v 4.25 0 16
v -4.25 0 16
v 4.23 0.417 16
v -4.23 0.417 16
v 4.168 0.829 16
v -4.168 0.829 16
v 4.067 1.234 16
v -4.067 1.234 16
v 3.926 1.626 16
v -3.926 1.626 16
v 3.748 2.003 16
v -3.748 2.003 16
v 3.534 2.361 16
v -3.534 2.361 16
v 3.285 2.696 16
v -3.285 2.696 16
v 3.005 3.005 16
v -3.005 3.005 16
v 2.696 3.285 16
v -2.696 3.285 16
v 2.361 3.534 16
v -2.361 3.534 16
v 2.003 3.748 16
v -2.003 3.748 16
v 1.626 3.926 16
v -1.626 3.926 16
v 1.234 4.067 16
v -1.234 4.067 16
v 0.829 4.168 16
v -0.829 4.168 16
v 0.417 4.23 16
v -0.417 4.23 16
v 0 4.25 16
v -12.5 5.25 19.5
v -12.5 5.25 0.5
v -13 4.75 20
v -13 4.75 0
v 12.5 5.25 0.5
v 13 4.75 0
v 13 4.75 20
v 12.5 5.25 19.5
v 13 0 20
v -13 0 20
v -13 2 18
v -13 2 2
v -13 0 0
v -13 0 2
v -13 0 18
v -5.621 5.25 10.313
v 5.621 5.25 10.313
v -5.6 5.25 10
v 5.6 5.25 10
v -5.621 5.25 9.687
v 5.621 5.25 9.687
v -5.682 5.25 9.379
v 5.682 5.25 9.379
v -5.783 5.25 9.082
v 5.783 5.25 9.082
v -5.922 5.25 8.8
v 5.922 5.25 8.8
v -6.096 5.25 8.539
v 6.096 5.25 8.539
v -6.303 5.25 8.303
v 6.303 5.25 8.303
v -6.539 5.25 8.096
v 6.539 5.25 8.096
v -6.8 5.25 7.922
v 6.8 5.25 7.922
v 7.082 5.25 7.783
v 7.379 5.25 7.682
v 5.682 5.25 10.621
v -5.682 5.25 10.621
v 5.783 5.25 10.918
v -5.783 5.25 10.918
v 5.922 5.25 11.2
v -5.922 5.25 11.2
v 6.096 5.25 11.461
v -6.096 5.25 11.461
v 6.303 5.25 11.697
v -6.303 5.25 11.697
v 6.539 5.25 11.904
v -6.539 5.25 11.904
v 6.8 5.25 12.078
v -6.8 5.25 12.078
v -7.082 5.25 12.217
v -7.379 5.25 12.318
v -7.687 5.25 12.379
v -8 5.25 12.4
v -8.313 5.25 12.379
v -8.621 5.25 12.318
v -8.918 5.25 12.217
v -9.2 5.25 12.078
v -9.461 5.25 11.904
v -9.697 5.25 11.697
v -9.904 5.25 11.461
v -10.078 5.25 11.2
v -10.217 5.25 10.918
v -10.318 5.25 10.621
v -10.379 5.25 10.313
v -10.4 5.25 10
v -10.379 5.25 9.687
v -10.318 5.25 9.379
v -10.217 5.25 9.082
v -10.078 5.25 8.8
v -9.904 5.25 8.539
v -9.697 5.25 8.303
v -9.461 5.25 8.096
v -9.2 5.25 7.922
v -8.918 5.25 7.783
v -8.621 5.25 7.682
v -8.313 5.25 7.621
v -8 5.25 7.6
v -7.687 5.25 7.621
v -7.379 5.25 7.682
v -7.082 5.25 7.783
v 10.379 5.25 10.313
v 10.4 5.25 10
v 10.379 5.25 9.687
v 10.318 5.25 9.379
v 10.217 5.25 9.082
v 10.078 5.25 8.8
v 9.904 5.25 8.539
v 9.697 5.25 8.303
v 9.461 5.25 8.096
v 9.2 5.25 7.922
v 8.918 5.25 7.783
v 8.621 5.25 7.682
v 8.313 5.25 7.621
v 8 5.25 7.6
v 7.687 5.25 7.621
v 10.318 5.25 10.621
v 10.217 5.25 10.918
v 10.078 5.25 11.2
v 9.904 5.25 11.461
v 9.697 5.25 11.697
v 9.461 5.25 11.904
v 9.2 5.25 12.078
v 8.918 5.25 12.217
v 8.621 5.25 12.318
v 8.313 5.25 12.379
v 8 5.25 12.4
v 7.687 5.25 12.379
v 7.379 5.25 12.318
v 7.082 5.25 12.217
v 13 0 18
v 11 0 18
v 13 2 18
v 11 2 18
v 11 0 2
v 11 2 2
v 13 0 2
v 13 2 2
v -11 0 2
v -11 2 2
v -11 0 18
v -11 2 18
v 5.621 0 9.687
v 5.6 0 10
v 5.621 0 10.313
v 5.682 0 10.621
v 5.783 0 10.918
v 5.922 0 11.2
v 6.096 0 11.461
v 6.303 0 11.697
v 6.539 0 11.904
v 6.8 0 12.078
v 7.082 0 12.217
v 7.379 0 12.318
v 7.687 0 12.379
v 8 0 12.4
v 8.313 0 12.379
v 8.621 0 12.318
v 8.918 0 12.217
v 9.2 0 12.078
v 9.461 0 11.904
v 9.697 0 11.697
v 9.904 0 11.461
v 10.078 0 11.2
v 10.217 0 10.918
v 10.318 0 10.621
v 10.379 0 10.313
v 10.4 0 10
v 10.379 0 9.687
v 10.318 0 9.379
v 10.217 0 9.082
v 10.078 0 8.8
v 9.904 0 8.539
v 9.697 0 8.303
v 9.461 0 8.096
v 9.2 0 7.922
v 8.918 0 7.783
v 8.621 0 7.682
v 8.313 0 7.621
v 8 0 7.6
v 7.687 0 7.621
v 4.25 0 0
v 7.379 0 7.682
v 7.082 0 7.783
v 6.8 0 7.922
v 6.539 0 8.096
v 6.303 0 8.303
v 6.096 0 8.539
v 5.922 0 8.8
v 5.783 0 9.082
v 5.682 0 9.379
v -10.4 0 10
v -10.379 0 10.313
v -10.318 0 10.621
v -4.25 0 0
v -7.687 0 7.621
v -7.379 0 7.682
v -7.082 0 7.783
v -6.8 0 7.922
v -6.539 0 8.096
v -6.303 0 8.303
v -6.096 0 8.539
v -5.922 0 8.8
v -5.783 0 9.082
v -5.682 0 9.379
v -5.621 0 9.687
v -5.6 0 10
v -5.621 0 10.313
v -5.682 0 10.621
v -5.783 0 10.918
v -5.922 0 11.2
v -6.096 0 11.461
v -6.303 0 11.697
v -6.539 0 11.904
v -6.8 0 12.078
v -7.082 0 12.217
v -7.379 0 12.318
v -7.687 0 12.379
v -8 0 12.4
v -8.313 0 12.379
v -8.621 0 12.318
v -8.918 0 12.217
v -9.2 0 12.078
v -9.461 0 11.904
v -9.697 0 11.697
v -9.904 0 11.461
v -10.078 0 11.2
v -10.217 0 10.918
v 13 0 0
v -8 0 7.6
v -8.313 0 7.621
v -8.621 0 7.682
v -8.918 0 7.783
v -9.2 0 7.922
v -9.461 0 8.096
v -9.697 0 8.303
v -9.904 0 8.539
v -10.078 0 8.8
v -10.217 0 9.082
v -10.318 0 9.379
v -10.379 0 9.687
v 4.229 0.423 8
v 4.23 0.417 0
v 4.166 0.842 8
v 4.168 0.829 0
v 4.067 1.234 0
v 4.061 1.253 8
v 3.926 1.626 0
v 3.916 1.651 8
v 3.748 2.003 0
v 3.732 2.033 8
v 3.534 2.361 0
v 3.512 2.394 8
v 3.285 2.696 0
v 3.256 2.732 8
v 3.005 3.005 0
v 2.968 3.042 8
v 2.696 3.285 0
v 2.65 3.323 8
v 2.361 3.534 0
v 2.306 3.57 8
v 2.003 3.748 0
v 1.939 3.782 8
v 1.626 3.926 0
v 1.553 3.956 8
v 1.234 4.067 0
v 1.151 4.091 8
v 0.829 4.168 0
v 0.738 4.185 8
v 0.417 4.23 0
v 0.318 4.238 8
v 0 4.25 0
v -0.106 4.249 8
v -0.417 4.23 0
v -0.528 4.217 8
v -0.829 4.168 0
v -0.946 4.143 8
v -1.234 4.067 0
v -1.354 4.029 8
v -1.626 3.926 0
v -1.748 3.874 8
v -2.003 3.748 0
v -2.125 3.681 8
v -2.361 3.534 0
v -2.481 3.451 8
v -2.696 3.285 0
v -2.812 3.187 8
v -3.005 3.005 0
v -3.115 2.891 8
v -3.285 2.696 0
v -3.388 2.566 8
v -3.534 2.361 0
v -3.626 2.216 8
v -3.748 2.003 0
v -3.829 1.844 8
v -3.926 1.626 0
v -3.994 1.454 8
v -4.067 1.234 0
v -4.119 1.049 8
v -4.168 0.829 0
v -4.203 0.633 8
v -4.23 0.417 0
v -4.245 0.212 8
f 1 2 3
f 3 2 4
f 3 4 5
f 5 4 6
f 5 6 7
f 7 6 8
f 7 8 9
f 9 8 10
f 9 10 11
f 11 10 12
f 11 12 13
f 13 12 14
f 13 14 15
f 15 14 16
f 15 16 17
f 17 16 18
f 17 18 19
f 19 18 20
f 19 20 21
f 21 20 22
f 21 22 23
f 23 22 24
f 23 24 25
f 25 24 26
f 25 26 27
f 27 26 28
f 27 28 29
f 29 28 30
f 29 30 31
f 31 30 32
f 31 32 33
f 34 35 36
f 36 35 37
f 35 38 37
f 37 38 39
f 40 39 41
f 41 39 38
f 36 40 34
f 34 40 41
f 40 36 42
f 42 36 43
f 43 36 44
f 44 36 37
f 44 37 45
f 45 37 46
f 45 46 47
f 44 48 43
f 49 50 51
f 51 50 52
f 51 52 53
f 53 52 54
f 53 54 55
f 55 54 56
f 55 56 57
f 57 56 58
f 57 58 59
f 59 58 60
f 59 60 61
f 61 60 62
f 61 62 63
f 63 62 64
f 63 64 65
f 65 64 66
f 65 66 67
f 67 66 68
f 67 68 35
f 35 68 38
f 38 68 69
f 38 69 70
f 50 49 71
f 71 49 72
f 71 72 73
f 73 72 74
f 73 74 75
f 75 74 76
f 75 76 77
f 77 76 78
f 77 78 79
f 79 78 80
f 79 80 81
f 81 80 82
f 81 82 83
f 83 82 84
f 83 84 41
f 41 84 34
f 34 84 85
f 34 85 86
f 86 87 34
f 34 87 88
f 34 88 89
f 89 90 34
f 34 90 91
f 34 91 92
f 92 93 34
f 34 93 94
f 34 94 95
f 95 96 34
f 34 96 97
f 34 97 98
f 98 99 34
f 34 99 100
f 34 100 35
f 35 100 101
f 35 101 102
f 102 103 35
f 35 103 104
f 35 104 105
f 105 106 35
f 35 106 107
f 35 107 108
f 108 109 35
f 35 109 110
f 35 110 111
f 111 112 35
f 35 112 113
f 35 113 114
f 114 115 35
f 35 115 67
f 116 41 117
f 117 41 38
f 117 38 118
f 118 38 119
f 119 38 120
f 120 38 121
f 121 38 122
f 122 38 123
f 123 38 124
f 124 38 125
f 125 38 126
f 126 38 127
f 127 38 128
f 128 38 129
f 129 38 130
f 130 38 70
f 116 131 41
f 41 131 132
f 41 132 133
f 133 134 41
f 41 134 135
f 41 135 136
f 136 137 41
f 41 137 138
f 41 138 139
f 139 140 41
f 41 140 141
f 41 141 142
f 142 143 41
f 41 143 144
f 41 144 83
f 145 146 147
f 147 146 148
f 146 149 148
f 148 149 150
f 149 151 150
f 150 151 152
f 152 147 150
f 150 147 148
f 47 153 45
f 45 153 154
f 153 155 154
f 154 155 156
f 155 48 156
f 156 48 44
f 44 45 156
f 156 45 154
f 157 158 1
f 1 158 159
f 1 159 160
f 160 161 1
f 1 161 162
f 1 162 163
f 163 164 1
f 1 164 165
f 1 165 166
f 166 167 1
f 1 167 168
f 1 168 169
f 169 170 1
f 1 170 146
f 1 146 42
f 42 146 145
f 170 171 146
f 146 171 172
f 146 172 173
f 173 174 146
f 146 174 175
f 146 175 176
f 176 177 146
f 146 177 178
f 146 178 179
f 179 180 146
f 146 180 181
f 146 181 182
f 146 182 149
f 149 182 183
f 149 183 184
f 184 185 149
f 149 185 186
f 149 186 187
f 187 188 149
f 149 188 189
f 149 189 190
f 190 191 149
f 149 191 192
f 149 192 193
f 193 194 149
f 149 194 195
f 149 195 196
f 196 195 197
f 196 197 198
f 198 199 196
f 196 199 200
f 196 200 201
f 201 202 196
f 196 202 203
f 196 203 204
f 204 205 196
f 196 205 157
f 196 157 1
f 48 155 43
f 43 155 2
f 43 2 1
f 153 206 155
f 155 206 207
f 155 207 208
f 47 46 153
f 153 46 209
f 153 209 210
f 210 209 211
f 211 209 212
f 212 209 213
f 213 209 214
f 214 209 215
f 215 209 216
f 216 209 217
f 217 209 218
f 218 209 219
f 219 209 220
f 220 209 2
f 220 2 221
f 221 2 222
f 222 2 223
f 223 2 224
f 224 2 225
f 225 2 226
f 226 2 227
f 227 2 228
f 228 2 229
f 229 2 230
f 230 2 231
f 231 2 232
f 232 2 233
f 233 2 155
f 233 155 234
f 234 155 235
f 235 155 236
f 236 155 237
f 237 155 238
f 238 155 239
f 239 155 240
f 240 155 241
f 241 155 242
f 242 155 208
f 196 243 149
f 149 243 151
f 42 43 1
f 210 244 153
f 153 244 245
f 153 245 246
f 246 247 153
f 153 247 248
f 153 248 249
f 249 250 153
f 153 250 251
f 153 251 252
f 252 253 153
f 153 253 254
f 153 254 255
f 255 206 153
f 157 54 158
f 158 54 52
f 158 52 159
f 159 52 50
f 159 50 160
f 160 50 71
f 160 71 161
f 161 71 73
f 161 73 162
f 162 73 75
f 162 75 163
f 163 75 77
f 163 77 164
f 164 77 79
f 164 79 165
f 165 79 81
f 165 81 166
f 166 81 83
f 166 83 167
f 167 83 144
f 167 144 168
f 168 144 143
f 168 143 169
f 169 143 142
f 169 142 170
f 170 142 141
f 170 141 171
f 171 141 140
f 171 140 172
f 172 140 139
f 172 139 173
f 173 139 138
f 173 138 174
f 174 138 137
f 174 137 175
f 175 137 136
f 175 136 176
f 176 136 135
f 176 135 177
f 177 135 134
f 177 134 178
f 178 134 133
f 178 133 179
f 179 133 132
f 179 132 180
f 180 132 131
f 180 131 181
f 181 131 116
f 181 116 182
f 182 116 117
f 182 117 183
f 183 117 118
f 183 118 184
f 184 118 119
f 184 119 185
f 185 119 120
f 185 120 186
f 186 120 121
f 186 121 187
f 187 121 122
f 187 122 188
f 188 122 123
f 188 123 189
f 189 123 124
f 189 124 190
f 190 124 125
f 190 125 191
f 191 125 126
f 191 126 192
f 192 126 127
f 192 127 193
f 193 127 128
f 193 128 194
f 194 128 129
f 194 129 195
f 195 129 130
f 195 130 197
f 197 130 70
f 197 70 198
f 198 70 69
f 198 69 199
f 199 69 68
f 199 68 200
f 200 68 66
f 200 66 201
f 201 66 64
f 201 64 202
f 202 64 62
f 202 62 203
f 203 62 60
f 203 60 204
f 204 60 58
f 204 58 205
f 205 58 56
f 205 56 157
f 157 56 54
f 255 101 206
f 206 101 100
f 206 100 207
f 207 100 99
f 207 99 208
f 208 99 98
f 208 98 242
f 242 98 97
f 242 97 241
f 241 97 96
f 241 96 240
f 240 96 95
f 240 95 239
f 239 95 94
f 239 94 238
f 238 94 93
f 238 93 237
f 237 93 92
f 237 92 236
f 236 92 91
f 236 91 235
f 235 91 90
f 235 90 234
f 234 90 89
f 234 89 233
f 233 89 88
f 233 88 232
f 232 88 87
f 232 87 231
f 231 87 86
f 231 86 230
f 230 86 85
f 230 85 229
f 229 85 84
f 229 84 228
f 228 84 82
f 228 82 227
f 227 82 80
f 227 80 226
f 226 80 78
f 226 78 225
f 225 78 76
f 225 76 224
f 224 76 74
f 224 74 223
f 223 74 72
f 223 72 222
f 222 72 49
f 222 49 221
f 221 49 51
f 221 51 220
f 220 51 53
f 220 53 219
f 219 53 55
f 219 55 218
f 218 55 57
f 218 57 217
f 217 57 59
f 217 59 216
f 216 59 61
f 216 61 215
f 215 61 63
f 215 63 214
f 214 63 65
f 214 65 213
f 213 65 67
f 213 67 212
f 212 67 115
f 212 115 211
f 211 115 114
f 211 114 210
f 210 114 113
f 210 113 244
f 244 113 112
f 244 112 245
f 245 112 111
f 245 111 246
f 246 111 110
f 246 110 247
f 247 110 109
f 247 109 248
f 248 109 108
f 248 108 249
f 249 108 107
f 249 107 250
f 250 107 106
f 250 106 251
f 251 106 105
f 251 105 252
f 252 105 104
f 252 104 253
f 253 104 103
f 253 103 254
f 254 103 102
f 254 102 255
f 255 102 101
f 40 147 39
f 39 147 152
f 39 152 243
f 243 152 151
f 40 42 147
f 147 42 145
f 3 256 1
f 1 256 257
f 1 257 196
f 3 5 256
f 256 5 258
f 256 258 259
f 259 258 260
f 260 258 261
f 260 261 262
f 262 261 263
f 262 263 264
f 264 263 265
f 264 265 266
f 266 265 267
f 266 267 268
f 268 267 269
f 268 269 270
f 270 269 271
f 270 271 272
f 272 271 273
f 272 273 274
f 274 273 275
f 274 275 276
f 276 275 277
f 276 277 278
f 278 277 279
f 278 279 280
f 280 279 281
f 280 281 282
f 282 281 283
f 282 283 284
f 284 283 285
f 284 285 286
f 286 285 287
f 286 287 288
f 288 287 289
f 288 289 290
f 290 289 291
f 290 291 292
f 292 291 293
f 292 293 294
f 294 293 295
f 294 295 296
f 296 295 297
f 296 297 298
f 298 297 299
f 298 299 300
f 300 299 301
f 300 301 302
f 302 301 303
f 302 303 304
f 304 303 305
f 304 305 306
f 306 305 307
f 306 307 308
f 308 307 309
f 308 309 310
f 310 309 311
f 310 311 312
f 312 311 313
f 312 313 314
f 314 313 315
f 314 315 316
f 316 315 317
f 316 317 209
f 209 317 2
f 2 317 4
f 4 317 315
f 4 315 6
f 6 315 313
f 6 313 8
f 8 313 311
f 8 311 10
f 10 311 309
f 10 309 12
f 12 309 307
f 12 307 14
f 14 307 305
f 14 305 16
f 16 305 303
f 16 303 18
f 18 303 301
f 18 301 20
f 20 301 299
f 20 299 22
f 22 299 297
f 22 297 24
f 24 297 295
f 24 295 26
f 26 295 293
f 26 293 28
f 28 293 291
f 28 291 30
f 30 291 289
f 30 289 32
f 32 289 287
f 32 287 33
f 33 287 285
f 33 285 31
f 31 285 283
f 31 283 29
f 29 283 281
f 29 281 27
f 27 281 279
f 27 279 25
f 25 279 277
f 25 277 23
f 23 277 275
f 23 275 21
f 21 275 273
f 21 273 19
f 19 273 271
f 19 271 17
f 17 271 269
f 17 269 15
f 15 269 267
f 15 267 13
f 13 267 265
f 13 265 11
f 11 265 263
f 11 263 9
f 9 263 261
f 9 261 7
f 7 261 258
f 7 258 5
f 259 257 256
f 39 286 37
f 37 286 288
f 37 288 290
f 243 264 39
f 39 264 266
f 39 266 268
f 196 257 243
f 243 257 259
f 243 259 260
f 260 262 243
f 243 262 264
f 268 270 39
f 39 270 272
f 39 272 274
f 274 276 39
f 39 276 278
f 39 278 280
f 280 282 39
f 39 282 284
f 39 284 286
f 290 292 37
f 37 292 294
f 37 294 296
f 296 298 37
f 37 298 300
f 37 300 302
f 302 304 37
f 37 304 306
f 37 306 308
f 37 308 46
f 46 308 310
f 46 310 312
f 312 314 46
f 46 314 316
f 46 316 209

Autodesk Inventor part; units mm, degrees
ref_plane "YZ Plane" through (0, 0, 0) normal (1, 0, 0) x (0, 1, 0)
ref_plane "XZ Plane" through (0, 0, 0) normal (0, 1, 0) x (-1, 0, 0)
ref_plane "XY Plane" through (0, 0, 0) normal (0, 0, 1) x (1, 0, 0)
sketch "Sketch1" plane through (0, 0, 0) normal (0, 0, 1) x (1, 0, 0)
  arc A0 (4.25, 0) -> (-4.25, 0) centre (0, 0) ccw
  line L0 (-18.2, 0) -> (18.2, 0) projected
  line L1 (-13, 0) -> (-13, 5.25)
  line L2 (-13, 5.25) -> (13, 5.25)
  line L3 (13, 5.25) -> (13, 0)
  line L4 (-13, 0) -> (-4.25, 0)
  line L5 (4.25, 0) -> (13, 0)
  dimension "d0" = 8.5
  dimension "d1" = 1
  dimension "d2" = 13
  dimension "d3" = 13
extrude "Extrusion1" add sketch "Sketch1" along normal blind 20 contours A0 L0 L1 L2 L3
sketch "Sketch2" plane through (-13, 5.25, 0) normal (0, 1, 0) x (1, 0, 0)
  line L0 (-4.8106, -10) -> (24.391, -10) construction
  line L1 (26, 0) -> (0, 0) construction
  line L2 (26, -20) -> (0, -20) construction
  circle A0 centre (5, -10) radius 2.4
  circle A1 centre (21, -10) radius 2.4
  point P0 (13, 0)
  dimension "d7" = 20
  dimension "d8" = 10
  dimension "d9" = 4.8
  dimension "d10" = 4.8
  dimension "d11" = 16
  dimension "d12" = 8
extrude "Extrusion2" cut sketch "Sketch2" against normal through all
sketch "Sketch3" plane through (-13, 0, 0) normal (0, -1, 0) x (1, 0, 0)
  line L0 (0, 0) -> (0, 20) projected
  line L1 (0, 2) -> (2, 2)
  line L2 (2, 2) -> (2, 18)
  line L3 (2, 18) -> (0, 18)
  line L4 (0, 18) -> (0, 2)
  line L5 (26, 0) -> (26, 20) projected
  line L6 (26, 2) -> (24, 2)
  line L7 (24, 2) -> (24, 18)
  line L8 (24, 18) -> (26, 18)
  line L9 (26, 18) -> (26, 2)
  line L10 (0, 0) -> (8.75, 0) projected
  line L11 (0, 20) -> (8.75, 20) projected
  line L12 (17.25, 20) -> (26, 20) projected
  line L13 (17.25, 0) -> (26, 0) projected
  point P0 (13, 0)
  point P1 (0, 18)
  dimension "d15" = 2
  dimension "d16" = 2
  dimension "d17" = 2
  dimension "d18" = 2
  dimension "d19" = 2
  dimension "d20" = 2
extrude "Extrusion3" cut sketch "Sketch3" against normal blind 2
chamfer "Chamfer1" distance 0.5 angle 45 4 edges at (13, 5.25, 10) (0, 5.25, 20) (-13, 5.25, 10) (0, 5.25, 0)
sketch "Sketch4" plane through (0, 0, 20) normal (0, 0, 1) x (1, 0, 0)
  arc A0 (4.25, 0) -> (-4.25, 0) centre (0, 0) ccw projected
  line L0 (4.25, 0) -> (13, 0) projected
  line L1 (-13, 0) -> (-4.25, 0) projected
  line L2 (4.25, 0) -> (-4.25, 0)
extrude "Extrusion4" add sketch "Sketch4" against normal blind 4
equation "\"d3\" = d2"
equation "\"d8\" = 0.5 * d7"
equation "\"d10\" = d9"
equation "\"d16\" = d15"
equation "\"d17\" = d15"
equation "\"d18\" = d16"
equation "\"d19\" = d16"
equation "\"d20\" = d17"
properties part number "_3DPrint"
